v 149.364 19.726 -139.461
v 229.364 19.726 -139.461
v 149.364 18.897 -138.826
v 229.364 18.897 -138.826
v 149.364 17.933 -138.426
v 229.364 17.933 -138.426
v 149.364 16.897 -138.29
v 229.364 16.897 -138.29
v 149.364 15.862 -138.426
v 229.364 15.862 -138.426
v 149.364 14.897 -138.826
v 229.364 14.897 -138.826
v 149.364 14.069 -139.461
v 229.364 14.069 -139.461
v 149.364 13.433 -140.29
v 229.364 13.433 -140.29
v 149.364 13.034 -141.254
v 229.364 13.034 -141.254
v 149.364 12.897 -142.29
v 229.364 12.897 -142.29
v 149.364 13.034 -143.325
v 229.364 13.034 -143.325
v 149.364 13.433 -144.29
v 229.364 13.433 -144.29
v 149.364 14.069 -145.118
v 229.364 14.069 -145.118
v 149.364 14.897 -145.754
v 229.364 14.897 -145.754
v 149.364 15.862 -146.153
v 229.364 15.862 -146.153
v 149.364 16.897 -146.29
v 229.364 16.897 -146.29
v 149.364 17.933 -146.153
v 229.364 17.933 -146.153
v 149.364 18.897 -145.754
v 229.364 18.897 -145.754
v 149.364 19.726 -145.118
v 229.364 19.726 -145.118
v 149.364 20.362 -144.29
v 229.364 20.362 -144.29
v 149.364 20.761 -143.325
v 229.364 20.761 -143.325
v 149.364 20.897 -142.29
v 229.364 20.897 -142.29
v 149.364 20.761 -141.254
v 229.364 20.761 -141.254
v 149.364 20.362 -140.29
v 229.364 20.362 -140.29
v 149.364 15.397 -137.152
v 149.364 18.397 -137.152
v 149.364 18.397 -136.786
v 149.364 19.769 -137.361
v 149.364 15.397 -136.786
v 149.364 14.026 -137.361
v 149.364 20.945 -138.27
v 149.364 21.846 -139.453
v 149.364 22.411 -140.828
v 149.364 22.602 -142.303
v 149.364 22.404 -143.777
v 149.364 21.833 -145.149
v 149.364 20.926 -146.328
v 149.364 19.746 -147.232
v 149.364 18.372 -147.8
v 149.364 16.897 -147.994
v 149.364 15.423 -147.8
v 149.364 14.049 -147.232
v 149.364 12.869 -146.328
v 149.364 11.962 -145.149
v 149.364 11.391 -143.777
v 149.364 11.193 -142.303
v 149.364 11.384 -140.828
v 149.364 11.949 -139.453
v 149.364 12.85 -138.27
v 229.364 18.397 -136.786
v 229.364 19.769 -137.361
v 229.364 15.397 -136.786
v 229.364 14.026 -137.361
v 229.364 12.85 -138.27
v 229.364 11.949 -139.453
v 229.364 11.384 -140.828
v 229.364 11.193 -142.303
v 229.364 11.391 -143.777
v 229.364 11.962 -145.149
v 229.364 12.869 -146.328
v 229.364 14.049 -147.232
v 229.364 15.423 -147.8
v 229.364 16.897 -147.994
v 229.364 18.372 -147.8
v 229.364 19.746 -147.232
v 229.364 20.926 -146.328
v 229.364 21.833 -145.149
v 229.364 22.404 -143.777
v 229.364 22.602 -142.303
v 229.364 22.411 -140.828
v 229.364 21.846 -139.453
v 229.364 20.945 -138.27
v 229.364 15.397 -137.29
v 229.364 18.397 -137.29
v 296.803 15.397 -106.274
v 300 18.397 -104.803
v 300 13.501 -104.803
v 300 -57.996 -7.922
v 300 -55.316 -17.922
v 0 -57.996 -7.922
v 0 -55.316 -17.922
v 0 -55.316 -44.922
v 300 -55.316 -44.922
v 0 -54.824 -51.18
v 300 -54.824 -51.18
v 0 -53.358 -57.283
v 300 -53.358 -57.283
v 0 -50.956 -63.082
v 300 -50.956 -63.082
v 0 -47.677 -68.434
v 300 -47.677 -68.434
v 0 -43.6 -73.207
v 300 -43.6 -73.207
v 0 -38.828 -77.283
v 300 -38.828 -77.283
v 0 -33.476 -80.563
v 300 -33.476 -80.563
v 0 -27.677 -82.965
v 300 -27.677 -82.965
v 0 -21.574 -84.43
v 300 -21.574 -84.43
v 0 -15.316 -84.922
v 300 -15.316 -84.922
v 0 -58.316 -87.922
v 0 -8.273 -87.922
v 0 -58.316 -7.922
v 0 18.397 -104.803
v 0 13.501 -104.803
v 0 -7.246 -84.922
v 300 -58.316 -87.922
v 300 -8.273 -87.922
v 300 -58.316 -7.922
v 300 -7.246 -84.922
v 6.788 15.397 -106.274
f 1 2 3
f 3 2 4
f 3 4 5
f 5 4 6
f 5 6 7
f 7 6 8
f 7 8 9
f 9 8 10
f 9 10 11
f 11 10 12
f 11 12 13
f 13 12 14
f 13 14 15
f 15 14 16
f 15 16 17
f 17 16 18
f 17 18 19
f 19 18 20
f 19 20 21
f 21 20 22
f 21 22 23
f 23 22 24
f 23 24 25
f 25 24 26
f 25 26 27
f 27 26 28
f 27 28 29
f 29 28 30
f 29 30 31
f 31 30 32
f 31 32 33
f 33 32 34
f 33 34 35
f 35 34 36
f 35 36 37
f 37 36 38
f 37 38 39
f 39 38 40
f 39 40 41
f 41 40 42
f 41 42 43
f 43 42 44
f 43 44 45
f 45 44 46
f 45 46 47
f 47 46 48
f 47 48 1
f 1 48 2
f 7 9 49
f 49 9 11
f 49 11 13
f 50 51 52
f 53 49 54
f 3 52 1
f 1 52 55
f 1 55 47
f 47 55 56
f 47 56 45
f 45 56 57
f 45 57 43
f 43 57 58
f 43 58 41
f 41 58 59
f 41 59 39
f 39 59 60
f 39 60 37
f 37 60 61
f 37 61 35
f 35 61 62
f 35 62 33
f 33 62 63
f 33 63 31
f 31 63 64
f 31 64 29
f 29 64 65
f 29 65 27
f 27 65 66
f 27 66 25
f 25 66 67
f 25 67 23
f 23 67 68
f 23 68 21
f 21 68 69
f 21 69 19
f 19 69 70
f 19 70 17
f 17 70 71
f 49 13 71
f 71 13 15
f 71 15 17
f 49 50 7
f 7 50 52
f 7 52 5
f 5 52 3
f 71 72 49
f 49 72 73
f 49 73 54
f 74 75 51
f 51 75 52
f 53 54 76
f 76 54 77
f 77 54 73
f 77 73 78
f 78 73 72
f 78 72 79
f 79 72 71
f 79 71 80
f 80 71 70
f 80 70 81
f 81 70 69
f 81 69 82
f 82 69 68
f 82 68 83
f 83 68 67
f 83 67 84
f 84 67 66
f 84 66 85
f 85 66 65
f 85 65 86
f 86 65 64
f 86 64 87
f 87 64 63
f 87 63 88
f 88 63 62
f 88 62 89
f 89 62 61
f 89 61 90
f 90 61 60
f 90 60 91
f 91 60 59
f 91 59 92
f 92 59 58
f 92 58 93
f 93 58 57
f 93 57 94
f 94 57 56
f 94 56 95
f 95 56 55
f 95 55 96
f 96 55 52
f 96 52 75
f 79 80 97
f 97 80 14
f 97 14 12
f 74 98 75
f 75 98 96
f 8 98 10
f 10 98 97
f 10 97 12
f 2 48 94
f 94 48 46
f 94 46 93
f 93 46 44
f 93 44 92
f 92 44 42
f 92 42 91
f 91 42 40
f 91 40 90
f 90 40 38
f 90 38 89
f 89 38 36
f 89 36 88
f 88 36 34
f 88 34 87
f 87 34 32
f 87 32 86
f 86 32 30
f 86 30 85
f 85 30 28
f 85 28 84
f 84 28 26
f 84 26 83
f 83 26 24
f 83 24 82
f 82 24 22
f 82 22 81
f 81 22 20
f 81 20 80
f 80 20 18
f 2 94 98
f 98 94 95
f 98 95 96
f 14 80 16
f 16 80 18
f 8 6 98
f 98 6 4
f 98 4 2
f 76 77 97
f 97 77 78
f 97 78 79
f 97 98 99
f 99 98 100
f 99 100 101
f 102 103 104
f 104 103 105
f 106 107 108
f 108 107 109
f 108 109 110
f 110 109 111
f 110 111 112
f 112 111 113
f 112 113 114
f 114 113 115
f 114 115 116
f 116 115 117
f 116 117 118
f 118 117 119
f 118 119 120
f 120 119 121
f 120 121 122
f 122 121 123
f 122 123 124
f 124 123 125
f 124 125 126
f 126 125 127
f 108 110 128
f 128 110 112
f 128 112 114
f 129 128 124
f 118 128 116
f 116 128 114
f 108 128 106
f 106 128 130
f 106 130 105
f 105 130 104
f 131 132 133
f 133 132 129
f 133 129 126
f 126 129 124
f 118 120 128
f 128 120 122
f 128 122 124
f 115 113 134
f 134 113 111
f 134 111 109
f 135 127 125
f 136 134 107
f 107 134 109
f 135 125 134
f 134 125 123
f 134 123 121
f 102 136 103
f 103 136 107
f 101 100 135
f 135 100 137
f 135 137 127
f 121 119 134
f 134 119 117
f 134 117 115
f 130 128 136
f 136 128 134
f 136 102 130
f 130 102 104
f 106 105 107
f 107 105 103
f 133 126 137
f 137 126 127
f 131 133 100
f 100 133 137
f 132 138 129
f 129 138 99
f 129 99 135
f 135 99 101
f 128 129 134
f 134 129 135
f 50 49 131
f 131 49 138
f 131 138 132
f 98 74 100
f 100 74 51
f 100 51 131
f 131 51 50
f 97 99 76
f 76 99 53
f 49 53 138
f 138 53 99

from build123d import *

# Parameters (mm, degrees)
BOSS_EXTRUDE1_DEPTH     = 300
FILLET1_R               = 40
CHAMFER1_SIZE           = 10
CHAMFER1_SIZE2          = 2.679491924
CUT_EXTRUDE1_DEPTH      = 336.036145422
CUT_EXTRUDE1_DEPTH_BACK = 336.036145422
SKETCH4_W               = 79.364416539
SKETCH4_H               = 3
BOSS_EXTRUDE2_DEPTH     = 10
SKETCH5_R               = 5.704192845
SKETCH5_R_2             = 4
BOSS_EXTRUDE3_DEPTH     = 80
SKETCH7_R               = 4
CUT_EXTRUDE2_DEPTH      = 80


with BuildPart() as part:
    # Sketch1 → Boss-Extrude1 (new body)
    with BuildSketch(Plane(origin=(0, 0, 0), x_dir=(0, 0, -1), z_dir=(1, 0, 0))):
        Polygon((84.922374429, -7.245973585), (84.922374429, -55.316210046), (7.922374429, -55.316210046), (7.922374429, -58.316210046), (87.922374429, -58.316210046), (87.922374429, -8.272692249), (106.273520759, 15.397445577), (137.289614993, 15.397445577), (137.289614993, 18.397445577), (104.803379808, 18.397445577), align=None)
    extrude(amount=BOSS_EXTRUDE1_DEPTH)

    # Fillet1
    fillet1_edges = [part.edges().sort_by_distance(p)[0] for p in [
        (150, -55.316210046, -84.922374429),
    ]]
    fillet(fillet1_edges, radius=FILLET1_R)

    # Chamfer1
    chamfer1_edges = [part.edges().sort_by_distance(p)[0] for p in [
        (150, -55.316210046, -7.922374429),
    ]]
    chamfer1_side = [part.faces().sort_by_distance(p)[0] for p in [
        (150, -55.316210046, -26.422374429),
    ]]
    chamfer(chamfer1_edges, length=CHAMFER1_SIZE, length2=CHAMFER1_SIZE2, reference=chamfer1_side[0])

    # Sketch2 → Cut-Extrude1 (cut, two sides: drawn at the far end of the back side and taken through both)
    with BuildSketch(Plane(origin=(0, 0, 0), x_dir=(1, 0, 0), z_dir=(0, 1, 0)).offset(-CUT_EXTRUDE1_DEPTH_BACK)):
        Polygon((229.364416539, 137.289614993), (300, 104.803379808), (319.87920565, 121.046497401), (319.87920565, 155.206469458), (246.417927531, 173.123323923), align=None)
        Polygon((150, 137.289614993), (0, 104.803379808), (-27.422104743, 146.559201032), (121.140212168, 173.123323923), align=None)
    extrude(amount=CUT_EXTRUDE1_DEPTH + CUT_EXTRUDE1_DEPTH_BACK, mode=Mode.SUBTRACT)

    # Sketch4 → Boss-Extrude2 (add)
    with BuildSketch(Plane(origin=(0, 0, -137.289614993), x_dir=(-1, 0, 0), z_dir=(0, 0, -1))):
        with Locations((-189.682208269, 16.897445577)):
            Rectangle(SKETCH4_W, SKETCH4_H)
    extrude(amount=BOSS_EXTRUDE2_DEPTH)

    # Sketch5 → Boss-Extrude3 (add)
    with BuildSketch(Plane(origin=(229.364416539, 0, 0), x_dir=(0, 0, -1), z_dir=(1, 0, 0))):
        with Locations((142.289614993, 16.897445577)):
            Circle(SKETCH5_R)
        with Locations((142.289614993, 16.897445577)):
            Circle(SKETCH5_R_2, mode=Mode.SUBTRACT)
    extrude(amount=-BOSS_EXTRUDE3_DEPTH)

    # Sketch7 → Cut-Extrude2 (cut)
    with BuildSketch(Plane(origin=(229.364416539, 0, 0), x_dir=(0, 0, -1), z_dir=(1, 0, 0))):
        with Locations((142.289614993, 16.897445577)):
            Circle(SKETCH7_R)
    extrude(amount=-CUT_EXTRUDE2_DEPTH, mode=Mode.SUBTRACT)


solid = part.part
